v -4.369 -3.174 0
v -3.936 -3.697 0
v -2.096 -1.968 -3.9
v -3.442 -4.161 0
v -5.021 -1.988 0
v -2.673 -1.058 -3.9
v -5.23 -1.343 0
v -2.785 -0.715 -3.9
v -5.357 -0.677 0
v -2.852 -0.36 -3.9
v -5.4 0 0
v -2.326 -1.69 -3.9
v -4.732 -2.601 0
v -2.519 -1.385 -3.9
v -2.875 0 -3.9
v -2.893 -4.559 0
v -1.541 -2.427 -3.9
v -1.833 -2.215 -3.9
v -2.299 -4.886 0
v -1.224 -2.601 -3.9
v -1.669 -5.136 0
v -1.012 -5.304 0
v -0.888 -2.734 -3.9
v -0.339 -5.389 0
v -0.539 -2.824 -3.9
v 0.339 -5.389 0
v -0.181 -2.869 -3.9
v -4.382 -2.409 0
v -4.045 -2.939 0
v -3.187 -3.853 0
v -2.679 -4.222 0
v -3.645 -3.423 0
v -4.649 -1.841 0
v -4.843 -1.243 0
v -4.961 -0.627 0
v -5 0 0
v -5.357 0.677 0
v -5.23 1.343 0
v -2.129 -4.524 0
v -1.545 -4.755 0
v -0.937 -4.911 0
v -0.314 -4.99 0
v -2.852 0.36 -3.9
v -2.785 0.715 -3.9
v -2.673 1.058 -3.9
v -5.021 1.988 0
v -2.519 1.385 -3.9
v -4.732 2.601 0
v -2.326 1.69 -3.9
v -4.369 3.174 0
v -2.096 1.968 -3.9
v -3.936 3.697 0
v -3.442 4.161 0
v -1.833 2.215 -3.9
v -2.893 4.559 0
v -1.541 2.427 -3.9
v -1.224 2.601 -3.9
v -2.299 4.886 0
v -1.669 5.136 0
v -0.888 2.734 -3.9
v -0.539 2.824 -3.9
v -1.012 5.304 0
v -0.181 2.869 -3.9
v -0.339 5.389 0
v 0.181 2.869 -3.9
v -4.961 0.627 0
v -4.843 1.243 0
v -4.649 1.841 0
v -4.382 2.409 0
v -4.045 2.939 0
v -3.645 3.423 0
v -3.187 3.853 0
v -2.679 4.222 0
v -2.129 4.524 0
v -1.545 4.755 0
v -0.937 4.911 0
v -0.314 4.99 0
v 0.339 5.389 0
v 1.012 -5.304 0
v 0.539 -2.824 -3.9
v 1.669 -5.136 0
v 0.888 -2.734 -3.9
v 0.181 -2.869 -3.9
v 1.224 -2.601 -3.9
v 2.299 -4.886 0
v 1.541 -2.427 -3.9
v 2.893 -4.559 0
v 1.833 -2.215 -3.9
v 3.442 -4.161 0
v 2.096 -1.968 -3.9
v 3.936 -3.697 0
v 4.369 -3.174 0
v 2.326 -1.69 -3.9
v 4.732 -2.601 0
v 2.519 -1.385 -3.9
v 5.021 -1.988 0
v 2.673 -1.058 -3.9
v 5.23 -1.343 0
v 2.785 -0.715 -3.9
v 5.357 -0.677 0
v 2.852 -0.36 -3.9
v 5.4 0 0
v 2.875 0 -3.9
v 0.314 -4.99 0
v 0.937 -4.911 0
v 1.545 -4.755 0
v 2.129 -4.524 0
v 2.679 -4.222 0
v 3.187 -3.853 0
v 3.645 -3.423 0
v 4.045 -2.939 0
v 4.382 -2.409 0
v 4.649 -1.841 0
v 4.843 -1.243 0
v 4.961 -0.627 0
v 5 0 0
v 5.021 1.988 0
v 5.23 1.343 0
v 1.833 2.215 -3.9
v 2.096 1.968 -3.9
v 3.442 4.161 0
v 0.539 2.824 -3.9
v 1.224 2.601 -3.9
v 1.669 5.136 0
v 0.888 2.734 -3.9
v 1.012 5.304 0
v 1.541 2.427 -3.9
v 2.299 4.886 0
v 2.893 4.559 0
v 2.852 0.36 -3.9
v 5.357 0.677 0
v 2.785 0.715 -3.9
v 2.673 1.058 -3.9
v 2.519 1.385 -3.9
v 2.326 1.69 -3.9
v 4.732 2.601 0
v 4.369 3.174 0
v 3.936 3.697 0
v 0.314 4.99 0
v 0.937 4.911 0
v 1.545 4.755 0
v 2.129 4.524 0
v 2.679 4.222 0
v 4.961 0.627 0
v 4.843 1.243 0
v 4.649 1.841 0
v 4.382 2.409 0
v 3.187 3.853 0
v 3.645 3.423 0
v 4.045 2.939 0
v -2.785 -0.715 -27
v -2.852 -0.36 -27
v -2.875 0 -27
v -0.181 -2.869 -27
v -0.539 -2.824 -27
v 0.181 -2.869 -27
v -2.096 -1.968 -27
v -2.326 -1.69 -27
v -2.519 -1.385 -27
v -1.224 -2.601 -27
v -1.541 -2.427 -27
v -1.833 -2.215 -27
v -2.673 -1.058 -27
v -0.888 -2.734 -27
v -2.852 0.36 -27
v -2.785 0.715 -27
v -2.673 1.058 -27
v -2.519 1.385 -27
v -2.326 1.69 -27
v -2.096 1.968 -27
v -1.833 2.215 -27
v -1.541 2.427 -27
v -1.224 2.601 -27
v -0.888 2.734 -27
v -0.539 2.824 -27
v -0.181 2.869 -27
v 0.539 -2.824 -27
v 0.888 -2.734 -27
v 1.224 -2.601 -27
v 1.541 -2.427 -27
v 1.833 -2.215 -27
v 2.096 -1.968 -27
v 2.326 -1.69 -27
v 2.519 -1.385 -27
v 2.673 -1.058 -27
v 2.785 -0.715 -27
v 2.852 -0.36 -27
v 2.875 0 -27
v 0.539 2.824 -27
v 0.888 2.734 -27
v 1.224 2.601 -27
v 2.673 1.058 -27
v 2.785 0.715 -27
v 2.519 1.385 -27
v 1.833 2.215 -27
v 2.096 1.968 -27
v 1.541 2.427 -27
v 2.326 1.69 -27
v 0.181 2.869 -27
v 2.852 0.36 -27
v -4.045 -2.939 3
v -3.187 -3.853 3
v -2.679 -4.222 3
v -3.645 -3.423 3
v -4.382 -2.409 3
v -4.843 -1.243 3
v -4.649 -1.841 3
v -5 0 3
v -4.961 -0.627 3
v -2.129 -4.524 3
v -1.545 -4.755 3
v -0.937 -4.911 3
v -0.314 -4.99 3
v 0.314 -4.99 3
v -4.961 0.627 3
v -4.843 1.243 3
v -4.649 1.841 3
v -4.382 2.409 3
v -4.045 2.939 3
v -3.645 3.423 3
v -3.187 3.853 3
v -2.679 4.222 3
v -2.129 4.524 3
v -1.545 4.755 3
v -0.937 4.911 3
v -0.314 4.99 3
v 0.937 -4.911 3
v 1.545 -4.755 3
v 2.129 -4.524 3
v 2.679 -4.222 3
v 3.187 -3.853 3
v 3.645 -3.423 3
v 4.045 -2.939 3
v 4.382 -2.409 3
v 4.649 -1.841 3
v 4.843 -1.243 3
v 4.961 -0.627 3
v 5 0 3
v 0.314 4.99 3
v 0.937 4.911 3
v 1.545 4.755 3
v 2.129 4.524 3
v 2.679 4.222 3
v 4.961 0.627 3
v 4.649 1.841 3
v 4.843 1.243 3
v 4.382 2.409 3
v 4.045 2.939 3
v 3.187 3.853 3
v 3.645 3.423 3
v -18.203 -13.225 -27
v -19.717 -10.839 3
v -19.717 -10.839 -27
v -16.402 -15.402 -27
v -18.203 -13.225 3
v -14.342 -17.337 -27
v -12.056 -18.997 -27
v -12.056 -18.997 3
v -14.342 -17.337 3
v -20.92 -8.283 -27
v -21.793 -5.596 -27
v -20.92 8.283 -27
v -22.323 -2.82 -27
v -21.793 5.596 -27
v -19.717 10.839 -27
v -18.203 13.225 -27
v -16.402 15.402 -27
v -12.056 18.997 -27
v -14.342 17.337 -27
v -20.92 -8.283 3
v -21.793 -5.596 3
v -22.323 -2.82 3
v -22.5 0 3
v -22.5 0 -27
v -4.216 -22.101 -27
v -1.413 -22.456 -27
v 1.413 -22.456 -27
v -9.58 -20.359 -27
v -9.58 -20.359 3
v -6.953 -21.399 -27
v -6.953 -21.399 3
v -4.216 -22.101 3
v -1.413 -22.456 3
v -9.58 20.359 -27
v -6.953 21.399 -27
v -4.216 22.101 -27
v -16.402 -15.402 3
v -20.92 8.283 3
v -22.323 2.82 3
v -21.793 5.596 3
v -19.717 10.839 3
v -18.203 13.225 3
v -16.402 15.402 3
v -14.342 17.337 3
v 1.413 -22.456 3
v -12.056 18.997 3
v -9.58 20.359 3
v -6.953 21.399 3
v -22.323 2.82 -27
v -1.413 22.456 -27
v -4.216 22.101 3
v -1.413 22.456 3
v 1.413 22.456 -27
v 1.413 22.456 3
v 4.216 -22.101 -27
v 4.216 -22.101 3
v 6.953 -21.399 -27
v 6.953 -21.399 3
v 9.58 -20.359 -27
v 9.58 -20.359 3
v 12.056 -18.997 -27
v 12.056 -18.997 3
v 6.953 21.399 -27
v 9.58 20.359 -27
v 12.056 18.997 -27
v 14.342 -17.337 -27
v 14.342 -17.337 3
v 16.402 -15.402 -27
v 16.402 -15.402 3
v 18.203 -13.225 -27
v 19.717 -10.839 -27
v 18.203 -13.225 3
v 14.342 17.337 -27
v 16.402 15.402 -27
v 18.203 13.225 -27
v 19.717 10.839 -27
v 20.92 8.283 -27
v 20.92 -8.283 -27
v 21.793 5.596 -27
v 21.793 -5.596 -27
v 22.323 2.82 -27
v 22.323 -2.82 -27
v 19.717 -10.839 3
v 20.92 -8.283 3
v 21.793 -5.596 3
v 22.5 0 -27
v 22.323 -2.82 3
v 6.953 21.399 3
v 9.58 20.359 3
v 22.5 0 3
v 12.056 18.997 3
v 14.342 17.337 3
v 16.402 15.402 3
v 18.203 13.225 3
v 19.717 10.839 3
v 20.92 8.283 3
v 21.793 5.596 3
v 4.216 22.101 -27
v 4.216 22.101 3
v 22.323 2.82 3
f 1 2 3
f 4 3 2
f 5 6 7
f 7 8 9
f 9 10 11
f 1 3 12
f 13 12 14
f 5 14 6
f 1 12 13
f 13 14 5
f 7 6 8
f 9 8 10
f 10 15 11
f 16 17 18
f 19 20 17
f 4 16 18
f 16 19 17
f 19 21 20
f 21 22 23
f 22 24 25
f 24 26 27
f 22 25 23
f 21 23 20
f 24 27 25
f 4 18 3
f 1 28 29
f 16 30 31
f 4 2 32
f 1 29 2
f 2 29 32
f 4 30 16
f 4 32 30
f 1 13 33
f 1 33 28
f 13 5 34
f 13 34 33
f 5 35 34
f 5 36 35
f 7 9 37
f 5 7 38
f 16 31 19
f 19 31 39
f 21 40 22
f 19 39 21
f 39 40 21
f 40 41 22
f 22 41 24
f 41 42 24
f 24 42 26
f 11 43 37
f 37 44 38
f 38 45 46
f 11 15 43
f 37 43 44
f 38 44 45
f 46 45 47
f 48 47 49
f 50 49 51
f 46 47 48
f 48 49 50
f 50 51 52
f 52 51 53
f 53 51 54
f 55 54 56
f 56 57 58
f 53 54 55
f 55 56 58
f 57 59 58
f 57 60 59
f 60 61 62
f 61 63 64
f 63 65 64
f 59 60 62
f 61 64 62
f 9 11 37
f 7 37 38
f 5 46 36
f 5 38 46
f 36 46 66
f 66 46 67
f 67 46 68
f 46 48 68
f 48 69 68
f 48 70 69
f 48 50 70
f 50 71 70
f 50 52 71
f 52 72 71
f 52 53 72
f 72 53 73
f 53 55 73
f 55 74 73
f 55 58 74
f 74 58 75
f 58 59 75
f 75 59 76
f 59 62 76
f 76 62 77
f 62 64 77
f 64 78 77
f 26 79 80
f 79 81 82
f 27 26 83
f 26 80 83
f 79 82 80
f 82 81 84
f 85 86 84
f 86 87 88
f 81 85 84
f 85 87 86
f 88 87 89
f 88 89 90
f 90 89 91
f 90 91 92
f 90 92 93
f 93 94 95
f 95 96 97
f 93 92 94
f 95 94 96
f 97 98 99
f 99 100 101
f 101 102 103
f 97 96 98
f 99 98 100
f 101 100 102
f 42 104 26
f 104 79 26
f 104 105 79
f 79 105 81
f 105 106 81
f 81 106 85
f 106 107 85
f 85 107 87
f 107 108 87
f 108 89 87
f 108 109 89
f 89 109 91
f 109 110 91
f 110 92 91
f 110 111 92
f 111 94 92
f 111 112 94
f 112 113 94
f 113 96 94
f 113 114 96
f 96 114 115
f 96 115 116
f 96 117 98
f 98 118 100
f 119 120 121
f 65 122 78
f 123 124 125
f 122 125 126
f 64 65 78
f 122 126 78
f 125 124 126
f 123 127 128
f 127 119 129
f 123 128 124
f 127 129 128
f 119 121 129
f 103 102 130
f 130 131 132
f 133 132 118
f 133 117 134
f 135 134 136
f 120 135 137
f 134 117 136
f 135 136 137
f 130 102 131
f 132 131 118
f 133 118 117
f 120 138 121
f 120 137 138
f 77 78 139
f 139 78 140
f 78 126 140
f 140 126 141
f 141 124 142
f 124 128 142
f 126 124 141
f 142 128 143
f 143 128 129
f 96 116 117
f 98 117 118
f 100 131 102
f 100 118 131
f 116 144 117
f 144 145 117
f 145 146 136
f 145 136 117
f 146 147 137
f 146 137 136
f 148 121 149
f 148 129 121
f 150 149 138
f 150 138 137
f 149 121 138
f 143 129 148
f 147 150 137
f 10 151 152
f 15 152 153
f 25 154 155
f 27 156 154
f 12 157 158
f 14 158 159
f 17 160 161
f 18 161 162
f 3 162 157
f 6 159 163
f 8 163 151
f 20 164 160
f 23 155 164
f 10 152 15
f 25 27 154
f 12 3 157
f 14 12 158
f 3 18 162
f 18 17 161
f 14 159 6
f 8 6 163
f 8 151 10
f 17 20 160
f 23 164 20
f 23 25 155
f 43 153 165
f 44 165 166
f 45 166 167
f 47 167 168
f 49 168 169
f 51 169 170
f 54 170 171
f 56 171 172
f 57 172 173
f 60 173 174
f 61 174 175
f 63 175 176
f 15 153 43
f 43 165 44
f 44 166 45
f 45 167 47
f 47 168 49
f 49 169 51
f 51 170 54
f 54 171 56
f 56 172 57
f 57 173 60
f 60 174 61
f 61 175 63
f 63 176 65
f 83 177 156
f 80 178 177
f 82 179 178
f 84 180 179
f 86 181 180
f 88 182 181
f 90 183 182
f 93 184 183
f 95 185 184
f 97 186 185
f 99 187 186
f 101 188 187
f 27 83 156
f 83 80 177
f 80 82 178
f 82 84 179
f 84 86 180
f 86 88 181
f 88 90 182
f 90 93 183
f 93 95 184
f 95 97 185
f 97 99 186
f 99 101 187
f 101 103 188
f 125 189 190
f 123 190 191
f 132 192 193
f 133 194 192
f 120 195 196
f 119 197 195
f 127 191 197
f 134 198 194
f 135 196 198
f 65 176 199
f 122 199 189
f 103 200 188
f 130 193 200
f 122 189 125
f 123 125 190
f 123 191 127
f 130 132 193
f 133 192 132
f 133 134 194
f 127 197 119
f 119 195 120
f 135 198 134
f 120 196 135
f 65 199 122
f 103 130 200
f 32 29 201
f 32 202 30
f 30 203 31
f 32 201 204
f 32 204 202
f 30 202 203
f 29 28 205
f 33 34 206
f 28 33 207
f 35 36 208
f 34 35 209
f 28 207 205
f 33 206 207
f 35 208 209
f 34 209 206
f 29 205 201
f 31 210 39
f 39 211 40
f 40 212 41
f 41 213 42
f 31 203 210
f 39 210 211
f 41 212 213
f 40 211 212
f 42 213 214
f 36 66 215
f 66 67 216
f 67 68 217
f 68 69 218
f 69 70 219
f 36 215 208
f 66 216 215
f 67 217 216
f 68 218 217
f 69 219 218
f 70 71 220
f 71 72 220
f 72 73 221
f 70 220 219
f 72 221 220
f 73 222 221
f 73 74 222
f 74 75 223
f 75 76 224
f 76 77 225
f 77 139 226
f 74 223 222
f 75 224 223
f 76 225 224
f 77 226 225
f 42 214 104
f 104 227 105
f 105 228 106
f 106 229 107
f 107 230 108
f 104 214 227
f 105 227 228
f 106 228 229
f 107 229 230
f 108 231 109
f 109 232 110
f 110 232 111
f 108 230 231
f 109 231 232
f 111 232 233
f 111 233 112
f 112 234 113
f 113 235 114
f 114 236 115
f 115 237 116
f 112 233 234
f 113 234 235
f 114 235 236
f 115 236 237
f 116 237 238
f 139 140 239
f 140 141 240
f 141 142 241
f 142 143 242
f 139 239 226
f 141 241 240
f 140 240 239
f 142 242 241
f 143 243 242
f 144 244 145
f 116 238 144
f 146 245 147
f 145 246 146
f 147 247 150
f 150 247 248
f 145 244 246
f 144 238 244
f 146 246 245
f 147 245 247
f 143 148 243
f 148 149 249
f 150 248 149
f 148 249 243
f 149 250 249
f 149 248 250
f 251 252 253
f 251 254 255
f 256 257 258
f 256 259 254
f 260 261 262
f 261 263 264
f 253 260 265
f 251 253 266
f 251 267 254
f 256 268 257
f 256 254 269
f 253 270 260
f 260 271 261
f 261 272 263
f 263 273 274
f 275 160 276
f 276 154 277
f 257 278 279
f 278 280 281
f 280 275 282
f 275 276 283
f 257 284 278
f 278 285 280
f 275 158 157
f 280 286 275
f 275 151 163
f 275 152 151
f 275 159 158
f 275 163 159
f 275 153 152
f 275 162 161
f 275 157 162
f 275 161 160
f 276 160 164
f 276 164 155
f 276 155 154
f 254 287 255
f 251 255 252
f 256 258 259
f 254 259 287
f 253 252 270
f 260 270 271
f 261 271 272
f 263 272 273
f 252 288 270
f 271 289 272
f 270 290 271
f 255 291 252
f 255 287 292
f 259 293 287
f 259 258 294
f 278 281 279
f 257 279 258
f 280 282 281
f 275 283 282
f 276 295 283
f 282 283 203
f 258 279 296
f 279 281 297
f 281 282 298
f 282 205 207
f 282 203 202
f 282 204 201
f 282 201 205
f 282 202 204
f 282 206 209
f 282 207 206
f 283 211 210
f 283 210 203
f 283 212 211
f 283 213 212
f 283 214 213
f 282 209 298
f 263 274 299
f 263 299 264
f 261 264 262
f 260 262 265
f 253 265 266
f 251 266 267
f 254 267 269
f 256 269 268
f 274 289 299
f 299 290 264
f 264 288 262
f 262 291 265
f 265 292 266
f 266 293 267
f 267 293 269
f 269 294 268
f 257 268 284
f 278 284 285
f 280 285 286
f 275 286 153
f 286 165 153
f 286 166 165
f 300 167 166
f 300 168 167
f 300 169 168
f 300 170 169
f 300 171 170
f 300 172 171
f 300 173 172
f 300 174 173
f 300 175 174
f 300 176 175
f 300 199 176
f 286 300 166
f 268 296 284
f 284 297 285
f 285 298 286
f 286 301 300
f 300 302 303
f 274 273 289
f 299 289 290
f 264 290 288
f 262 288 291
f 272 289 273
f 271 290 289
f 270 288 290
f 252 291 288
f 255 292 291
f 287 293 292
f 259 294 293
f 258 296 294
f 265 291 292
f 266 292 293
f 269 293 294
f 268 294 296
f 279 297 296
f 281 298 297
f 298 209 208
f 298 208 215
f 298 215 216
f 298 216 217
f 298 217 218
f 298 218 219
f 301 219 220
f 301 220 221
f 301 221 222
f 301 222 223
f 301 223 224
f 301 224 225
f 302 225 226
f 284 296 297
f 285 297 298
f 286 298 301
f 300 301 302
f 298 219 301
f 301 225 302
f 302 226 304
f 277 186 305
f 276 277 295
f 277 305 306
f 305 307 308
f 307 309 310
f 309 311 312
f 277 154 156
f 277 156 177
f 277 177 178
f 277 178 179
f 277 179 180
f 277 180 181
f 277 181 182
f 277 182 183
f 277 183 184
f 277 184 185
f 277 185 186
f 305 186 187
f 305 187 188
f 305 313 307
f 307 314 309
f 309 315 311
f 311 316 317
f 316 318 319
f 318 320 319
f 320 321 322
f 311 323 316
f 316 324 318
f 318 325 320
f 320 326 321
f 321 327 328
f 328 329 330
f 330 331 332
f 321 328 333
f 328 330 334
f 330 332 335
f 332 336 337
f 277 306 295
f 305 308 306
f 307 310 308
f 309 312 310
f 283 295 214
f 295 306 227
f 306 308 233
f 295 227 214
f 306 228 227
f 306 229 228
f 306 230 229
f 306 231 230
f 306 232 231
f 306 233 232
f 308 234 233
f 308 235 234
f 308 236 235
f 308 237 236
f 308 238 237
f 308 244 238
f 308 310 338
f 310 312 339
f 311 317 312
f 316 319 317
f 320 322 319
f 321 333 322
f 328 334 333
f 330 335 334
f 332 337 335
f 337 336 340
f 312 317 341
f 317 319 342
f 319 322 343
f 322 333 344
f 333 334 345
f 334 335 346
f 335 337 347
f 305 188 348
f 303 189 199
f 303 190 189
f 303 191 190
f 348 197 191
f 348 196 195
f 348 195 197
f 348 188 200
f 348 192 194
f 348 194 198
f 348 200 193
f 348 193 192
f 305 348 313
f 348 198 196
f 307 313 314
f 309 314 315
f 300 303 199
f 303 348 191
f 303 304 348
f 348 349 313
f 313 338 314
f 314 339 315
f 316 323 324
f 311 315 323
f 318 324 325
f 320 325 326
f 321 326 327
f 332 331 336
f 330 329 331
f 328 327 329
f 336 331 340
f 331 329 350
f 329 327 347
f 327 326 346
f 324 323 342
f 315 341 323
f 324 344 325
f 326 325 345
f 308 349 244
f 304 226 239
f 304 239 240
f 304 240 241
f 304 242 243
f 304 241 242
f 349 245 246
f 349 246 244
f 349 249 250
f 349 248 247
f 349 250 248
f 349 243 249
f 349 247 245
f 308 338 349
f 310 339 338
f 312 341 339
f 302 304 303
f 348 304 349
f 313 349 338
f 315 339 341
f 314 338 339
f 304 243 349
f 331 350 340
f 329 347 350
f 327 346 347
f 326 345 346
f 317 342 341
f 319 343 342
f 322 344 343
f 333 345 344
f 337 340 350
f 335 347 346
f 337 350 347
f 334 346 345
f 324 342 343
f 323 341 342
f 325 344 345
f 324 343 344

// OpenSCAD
$fn = 50;


difference() {
	union() {
		translate(v = [0, 0, -27.0000000000]) {
			cylinder(h = 30, r = 22.5000000000);
		}
	}
	union() {
		translate(v = [0, 0, 0]) {
			rotate(a = [0, 0, 0]) {
				difference() {
					union() {
						translate(v = [0, 0, -30.0000000000]) {
							cylinder(h = 30, r = 2.6000000000);
						}
						translate(v = [0, 0, -3.9000000000]) {
							cylinder(h = 3.9000000000, r1 = 2.8750000000, r2 = 5.4000000000);
						}
						translate(v = [0, 0, -30.0000000000]) {
							cylinder(h = 30, r = 2.8750000000);
						}
						translate(v = [0, 0, -30.0000000000]) {
							cylinder(h = 30, r = 2.6000000000);
						}
					}
					union();
				}
			}
		}
		#cylinder(h = 3, r = 5.0000000000);
	}
}
